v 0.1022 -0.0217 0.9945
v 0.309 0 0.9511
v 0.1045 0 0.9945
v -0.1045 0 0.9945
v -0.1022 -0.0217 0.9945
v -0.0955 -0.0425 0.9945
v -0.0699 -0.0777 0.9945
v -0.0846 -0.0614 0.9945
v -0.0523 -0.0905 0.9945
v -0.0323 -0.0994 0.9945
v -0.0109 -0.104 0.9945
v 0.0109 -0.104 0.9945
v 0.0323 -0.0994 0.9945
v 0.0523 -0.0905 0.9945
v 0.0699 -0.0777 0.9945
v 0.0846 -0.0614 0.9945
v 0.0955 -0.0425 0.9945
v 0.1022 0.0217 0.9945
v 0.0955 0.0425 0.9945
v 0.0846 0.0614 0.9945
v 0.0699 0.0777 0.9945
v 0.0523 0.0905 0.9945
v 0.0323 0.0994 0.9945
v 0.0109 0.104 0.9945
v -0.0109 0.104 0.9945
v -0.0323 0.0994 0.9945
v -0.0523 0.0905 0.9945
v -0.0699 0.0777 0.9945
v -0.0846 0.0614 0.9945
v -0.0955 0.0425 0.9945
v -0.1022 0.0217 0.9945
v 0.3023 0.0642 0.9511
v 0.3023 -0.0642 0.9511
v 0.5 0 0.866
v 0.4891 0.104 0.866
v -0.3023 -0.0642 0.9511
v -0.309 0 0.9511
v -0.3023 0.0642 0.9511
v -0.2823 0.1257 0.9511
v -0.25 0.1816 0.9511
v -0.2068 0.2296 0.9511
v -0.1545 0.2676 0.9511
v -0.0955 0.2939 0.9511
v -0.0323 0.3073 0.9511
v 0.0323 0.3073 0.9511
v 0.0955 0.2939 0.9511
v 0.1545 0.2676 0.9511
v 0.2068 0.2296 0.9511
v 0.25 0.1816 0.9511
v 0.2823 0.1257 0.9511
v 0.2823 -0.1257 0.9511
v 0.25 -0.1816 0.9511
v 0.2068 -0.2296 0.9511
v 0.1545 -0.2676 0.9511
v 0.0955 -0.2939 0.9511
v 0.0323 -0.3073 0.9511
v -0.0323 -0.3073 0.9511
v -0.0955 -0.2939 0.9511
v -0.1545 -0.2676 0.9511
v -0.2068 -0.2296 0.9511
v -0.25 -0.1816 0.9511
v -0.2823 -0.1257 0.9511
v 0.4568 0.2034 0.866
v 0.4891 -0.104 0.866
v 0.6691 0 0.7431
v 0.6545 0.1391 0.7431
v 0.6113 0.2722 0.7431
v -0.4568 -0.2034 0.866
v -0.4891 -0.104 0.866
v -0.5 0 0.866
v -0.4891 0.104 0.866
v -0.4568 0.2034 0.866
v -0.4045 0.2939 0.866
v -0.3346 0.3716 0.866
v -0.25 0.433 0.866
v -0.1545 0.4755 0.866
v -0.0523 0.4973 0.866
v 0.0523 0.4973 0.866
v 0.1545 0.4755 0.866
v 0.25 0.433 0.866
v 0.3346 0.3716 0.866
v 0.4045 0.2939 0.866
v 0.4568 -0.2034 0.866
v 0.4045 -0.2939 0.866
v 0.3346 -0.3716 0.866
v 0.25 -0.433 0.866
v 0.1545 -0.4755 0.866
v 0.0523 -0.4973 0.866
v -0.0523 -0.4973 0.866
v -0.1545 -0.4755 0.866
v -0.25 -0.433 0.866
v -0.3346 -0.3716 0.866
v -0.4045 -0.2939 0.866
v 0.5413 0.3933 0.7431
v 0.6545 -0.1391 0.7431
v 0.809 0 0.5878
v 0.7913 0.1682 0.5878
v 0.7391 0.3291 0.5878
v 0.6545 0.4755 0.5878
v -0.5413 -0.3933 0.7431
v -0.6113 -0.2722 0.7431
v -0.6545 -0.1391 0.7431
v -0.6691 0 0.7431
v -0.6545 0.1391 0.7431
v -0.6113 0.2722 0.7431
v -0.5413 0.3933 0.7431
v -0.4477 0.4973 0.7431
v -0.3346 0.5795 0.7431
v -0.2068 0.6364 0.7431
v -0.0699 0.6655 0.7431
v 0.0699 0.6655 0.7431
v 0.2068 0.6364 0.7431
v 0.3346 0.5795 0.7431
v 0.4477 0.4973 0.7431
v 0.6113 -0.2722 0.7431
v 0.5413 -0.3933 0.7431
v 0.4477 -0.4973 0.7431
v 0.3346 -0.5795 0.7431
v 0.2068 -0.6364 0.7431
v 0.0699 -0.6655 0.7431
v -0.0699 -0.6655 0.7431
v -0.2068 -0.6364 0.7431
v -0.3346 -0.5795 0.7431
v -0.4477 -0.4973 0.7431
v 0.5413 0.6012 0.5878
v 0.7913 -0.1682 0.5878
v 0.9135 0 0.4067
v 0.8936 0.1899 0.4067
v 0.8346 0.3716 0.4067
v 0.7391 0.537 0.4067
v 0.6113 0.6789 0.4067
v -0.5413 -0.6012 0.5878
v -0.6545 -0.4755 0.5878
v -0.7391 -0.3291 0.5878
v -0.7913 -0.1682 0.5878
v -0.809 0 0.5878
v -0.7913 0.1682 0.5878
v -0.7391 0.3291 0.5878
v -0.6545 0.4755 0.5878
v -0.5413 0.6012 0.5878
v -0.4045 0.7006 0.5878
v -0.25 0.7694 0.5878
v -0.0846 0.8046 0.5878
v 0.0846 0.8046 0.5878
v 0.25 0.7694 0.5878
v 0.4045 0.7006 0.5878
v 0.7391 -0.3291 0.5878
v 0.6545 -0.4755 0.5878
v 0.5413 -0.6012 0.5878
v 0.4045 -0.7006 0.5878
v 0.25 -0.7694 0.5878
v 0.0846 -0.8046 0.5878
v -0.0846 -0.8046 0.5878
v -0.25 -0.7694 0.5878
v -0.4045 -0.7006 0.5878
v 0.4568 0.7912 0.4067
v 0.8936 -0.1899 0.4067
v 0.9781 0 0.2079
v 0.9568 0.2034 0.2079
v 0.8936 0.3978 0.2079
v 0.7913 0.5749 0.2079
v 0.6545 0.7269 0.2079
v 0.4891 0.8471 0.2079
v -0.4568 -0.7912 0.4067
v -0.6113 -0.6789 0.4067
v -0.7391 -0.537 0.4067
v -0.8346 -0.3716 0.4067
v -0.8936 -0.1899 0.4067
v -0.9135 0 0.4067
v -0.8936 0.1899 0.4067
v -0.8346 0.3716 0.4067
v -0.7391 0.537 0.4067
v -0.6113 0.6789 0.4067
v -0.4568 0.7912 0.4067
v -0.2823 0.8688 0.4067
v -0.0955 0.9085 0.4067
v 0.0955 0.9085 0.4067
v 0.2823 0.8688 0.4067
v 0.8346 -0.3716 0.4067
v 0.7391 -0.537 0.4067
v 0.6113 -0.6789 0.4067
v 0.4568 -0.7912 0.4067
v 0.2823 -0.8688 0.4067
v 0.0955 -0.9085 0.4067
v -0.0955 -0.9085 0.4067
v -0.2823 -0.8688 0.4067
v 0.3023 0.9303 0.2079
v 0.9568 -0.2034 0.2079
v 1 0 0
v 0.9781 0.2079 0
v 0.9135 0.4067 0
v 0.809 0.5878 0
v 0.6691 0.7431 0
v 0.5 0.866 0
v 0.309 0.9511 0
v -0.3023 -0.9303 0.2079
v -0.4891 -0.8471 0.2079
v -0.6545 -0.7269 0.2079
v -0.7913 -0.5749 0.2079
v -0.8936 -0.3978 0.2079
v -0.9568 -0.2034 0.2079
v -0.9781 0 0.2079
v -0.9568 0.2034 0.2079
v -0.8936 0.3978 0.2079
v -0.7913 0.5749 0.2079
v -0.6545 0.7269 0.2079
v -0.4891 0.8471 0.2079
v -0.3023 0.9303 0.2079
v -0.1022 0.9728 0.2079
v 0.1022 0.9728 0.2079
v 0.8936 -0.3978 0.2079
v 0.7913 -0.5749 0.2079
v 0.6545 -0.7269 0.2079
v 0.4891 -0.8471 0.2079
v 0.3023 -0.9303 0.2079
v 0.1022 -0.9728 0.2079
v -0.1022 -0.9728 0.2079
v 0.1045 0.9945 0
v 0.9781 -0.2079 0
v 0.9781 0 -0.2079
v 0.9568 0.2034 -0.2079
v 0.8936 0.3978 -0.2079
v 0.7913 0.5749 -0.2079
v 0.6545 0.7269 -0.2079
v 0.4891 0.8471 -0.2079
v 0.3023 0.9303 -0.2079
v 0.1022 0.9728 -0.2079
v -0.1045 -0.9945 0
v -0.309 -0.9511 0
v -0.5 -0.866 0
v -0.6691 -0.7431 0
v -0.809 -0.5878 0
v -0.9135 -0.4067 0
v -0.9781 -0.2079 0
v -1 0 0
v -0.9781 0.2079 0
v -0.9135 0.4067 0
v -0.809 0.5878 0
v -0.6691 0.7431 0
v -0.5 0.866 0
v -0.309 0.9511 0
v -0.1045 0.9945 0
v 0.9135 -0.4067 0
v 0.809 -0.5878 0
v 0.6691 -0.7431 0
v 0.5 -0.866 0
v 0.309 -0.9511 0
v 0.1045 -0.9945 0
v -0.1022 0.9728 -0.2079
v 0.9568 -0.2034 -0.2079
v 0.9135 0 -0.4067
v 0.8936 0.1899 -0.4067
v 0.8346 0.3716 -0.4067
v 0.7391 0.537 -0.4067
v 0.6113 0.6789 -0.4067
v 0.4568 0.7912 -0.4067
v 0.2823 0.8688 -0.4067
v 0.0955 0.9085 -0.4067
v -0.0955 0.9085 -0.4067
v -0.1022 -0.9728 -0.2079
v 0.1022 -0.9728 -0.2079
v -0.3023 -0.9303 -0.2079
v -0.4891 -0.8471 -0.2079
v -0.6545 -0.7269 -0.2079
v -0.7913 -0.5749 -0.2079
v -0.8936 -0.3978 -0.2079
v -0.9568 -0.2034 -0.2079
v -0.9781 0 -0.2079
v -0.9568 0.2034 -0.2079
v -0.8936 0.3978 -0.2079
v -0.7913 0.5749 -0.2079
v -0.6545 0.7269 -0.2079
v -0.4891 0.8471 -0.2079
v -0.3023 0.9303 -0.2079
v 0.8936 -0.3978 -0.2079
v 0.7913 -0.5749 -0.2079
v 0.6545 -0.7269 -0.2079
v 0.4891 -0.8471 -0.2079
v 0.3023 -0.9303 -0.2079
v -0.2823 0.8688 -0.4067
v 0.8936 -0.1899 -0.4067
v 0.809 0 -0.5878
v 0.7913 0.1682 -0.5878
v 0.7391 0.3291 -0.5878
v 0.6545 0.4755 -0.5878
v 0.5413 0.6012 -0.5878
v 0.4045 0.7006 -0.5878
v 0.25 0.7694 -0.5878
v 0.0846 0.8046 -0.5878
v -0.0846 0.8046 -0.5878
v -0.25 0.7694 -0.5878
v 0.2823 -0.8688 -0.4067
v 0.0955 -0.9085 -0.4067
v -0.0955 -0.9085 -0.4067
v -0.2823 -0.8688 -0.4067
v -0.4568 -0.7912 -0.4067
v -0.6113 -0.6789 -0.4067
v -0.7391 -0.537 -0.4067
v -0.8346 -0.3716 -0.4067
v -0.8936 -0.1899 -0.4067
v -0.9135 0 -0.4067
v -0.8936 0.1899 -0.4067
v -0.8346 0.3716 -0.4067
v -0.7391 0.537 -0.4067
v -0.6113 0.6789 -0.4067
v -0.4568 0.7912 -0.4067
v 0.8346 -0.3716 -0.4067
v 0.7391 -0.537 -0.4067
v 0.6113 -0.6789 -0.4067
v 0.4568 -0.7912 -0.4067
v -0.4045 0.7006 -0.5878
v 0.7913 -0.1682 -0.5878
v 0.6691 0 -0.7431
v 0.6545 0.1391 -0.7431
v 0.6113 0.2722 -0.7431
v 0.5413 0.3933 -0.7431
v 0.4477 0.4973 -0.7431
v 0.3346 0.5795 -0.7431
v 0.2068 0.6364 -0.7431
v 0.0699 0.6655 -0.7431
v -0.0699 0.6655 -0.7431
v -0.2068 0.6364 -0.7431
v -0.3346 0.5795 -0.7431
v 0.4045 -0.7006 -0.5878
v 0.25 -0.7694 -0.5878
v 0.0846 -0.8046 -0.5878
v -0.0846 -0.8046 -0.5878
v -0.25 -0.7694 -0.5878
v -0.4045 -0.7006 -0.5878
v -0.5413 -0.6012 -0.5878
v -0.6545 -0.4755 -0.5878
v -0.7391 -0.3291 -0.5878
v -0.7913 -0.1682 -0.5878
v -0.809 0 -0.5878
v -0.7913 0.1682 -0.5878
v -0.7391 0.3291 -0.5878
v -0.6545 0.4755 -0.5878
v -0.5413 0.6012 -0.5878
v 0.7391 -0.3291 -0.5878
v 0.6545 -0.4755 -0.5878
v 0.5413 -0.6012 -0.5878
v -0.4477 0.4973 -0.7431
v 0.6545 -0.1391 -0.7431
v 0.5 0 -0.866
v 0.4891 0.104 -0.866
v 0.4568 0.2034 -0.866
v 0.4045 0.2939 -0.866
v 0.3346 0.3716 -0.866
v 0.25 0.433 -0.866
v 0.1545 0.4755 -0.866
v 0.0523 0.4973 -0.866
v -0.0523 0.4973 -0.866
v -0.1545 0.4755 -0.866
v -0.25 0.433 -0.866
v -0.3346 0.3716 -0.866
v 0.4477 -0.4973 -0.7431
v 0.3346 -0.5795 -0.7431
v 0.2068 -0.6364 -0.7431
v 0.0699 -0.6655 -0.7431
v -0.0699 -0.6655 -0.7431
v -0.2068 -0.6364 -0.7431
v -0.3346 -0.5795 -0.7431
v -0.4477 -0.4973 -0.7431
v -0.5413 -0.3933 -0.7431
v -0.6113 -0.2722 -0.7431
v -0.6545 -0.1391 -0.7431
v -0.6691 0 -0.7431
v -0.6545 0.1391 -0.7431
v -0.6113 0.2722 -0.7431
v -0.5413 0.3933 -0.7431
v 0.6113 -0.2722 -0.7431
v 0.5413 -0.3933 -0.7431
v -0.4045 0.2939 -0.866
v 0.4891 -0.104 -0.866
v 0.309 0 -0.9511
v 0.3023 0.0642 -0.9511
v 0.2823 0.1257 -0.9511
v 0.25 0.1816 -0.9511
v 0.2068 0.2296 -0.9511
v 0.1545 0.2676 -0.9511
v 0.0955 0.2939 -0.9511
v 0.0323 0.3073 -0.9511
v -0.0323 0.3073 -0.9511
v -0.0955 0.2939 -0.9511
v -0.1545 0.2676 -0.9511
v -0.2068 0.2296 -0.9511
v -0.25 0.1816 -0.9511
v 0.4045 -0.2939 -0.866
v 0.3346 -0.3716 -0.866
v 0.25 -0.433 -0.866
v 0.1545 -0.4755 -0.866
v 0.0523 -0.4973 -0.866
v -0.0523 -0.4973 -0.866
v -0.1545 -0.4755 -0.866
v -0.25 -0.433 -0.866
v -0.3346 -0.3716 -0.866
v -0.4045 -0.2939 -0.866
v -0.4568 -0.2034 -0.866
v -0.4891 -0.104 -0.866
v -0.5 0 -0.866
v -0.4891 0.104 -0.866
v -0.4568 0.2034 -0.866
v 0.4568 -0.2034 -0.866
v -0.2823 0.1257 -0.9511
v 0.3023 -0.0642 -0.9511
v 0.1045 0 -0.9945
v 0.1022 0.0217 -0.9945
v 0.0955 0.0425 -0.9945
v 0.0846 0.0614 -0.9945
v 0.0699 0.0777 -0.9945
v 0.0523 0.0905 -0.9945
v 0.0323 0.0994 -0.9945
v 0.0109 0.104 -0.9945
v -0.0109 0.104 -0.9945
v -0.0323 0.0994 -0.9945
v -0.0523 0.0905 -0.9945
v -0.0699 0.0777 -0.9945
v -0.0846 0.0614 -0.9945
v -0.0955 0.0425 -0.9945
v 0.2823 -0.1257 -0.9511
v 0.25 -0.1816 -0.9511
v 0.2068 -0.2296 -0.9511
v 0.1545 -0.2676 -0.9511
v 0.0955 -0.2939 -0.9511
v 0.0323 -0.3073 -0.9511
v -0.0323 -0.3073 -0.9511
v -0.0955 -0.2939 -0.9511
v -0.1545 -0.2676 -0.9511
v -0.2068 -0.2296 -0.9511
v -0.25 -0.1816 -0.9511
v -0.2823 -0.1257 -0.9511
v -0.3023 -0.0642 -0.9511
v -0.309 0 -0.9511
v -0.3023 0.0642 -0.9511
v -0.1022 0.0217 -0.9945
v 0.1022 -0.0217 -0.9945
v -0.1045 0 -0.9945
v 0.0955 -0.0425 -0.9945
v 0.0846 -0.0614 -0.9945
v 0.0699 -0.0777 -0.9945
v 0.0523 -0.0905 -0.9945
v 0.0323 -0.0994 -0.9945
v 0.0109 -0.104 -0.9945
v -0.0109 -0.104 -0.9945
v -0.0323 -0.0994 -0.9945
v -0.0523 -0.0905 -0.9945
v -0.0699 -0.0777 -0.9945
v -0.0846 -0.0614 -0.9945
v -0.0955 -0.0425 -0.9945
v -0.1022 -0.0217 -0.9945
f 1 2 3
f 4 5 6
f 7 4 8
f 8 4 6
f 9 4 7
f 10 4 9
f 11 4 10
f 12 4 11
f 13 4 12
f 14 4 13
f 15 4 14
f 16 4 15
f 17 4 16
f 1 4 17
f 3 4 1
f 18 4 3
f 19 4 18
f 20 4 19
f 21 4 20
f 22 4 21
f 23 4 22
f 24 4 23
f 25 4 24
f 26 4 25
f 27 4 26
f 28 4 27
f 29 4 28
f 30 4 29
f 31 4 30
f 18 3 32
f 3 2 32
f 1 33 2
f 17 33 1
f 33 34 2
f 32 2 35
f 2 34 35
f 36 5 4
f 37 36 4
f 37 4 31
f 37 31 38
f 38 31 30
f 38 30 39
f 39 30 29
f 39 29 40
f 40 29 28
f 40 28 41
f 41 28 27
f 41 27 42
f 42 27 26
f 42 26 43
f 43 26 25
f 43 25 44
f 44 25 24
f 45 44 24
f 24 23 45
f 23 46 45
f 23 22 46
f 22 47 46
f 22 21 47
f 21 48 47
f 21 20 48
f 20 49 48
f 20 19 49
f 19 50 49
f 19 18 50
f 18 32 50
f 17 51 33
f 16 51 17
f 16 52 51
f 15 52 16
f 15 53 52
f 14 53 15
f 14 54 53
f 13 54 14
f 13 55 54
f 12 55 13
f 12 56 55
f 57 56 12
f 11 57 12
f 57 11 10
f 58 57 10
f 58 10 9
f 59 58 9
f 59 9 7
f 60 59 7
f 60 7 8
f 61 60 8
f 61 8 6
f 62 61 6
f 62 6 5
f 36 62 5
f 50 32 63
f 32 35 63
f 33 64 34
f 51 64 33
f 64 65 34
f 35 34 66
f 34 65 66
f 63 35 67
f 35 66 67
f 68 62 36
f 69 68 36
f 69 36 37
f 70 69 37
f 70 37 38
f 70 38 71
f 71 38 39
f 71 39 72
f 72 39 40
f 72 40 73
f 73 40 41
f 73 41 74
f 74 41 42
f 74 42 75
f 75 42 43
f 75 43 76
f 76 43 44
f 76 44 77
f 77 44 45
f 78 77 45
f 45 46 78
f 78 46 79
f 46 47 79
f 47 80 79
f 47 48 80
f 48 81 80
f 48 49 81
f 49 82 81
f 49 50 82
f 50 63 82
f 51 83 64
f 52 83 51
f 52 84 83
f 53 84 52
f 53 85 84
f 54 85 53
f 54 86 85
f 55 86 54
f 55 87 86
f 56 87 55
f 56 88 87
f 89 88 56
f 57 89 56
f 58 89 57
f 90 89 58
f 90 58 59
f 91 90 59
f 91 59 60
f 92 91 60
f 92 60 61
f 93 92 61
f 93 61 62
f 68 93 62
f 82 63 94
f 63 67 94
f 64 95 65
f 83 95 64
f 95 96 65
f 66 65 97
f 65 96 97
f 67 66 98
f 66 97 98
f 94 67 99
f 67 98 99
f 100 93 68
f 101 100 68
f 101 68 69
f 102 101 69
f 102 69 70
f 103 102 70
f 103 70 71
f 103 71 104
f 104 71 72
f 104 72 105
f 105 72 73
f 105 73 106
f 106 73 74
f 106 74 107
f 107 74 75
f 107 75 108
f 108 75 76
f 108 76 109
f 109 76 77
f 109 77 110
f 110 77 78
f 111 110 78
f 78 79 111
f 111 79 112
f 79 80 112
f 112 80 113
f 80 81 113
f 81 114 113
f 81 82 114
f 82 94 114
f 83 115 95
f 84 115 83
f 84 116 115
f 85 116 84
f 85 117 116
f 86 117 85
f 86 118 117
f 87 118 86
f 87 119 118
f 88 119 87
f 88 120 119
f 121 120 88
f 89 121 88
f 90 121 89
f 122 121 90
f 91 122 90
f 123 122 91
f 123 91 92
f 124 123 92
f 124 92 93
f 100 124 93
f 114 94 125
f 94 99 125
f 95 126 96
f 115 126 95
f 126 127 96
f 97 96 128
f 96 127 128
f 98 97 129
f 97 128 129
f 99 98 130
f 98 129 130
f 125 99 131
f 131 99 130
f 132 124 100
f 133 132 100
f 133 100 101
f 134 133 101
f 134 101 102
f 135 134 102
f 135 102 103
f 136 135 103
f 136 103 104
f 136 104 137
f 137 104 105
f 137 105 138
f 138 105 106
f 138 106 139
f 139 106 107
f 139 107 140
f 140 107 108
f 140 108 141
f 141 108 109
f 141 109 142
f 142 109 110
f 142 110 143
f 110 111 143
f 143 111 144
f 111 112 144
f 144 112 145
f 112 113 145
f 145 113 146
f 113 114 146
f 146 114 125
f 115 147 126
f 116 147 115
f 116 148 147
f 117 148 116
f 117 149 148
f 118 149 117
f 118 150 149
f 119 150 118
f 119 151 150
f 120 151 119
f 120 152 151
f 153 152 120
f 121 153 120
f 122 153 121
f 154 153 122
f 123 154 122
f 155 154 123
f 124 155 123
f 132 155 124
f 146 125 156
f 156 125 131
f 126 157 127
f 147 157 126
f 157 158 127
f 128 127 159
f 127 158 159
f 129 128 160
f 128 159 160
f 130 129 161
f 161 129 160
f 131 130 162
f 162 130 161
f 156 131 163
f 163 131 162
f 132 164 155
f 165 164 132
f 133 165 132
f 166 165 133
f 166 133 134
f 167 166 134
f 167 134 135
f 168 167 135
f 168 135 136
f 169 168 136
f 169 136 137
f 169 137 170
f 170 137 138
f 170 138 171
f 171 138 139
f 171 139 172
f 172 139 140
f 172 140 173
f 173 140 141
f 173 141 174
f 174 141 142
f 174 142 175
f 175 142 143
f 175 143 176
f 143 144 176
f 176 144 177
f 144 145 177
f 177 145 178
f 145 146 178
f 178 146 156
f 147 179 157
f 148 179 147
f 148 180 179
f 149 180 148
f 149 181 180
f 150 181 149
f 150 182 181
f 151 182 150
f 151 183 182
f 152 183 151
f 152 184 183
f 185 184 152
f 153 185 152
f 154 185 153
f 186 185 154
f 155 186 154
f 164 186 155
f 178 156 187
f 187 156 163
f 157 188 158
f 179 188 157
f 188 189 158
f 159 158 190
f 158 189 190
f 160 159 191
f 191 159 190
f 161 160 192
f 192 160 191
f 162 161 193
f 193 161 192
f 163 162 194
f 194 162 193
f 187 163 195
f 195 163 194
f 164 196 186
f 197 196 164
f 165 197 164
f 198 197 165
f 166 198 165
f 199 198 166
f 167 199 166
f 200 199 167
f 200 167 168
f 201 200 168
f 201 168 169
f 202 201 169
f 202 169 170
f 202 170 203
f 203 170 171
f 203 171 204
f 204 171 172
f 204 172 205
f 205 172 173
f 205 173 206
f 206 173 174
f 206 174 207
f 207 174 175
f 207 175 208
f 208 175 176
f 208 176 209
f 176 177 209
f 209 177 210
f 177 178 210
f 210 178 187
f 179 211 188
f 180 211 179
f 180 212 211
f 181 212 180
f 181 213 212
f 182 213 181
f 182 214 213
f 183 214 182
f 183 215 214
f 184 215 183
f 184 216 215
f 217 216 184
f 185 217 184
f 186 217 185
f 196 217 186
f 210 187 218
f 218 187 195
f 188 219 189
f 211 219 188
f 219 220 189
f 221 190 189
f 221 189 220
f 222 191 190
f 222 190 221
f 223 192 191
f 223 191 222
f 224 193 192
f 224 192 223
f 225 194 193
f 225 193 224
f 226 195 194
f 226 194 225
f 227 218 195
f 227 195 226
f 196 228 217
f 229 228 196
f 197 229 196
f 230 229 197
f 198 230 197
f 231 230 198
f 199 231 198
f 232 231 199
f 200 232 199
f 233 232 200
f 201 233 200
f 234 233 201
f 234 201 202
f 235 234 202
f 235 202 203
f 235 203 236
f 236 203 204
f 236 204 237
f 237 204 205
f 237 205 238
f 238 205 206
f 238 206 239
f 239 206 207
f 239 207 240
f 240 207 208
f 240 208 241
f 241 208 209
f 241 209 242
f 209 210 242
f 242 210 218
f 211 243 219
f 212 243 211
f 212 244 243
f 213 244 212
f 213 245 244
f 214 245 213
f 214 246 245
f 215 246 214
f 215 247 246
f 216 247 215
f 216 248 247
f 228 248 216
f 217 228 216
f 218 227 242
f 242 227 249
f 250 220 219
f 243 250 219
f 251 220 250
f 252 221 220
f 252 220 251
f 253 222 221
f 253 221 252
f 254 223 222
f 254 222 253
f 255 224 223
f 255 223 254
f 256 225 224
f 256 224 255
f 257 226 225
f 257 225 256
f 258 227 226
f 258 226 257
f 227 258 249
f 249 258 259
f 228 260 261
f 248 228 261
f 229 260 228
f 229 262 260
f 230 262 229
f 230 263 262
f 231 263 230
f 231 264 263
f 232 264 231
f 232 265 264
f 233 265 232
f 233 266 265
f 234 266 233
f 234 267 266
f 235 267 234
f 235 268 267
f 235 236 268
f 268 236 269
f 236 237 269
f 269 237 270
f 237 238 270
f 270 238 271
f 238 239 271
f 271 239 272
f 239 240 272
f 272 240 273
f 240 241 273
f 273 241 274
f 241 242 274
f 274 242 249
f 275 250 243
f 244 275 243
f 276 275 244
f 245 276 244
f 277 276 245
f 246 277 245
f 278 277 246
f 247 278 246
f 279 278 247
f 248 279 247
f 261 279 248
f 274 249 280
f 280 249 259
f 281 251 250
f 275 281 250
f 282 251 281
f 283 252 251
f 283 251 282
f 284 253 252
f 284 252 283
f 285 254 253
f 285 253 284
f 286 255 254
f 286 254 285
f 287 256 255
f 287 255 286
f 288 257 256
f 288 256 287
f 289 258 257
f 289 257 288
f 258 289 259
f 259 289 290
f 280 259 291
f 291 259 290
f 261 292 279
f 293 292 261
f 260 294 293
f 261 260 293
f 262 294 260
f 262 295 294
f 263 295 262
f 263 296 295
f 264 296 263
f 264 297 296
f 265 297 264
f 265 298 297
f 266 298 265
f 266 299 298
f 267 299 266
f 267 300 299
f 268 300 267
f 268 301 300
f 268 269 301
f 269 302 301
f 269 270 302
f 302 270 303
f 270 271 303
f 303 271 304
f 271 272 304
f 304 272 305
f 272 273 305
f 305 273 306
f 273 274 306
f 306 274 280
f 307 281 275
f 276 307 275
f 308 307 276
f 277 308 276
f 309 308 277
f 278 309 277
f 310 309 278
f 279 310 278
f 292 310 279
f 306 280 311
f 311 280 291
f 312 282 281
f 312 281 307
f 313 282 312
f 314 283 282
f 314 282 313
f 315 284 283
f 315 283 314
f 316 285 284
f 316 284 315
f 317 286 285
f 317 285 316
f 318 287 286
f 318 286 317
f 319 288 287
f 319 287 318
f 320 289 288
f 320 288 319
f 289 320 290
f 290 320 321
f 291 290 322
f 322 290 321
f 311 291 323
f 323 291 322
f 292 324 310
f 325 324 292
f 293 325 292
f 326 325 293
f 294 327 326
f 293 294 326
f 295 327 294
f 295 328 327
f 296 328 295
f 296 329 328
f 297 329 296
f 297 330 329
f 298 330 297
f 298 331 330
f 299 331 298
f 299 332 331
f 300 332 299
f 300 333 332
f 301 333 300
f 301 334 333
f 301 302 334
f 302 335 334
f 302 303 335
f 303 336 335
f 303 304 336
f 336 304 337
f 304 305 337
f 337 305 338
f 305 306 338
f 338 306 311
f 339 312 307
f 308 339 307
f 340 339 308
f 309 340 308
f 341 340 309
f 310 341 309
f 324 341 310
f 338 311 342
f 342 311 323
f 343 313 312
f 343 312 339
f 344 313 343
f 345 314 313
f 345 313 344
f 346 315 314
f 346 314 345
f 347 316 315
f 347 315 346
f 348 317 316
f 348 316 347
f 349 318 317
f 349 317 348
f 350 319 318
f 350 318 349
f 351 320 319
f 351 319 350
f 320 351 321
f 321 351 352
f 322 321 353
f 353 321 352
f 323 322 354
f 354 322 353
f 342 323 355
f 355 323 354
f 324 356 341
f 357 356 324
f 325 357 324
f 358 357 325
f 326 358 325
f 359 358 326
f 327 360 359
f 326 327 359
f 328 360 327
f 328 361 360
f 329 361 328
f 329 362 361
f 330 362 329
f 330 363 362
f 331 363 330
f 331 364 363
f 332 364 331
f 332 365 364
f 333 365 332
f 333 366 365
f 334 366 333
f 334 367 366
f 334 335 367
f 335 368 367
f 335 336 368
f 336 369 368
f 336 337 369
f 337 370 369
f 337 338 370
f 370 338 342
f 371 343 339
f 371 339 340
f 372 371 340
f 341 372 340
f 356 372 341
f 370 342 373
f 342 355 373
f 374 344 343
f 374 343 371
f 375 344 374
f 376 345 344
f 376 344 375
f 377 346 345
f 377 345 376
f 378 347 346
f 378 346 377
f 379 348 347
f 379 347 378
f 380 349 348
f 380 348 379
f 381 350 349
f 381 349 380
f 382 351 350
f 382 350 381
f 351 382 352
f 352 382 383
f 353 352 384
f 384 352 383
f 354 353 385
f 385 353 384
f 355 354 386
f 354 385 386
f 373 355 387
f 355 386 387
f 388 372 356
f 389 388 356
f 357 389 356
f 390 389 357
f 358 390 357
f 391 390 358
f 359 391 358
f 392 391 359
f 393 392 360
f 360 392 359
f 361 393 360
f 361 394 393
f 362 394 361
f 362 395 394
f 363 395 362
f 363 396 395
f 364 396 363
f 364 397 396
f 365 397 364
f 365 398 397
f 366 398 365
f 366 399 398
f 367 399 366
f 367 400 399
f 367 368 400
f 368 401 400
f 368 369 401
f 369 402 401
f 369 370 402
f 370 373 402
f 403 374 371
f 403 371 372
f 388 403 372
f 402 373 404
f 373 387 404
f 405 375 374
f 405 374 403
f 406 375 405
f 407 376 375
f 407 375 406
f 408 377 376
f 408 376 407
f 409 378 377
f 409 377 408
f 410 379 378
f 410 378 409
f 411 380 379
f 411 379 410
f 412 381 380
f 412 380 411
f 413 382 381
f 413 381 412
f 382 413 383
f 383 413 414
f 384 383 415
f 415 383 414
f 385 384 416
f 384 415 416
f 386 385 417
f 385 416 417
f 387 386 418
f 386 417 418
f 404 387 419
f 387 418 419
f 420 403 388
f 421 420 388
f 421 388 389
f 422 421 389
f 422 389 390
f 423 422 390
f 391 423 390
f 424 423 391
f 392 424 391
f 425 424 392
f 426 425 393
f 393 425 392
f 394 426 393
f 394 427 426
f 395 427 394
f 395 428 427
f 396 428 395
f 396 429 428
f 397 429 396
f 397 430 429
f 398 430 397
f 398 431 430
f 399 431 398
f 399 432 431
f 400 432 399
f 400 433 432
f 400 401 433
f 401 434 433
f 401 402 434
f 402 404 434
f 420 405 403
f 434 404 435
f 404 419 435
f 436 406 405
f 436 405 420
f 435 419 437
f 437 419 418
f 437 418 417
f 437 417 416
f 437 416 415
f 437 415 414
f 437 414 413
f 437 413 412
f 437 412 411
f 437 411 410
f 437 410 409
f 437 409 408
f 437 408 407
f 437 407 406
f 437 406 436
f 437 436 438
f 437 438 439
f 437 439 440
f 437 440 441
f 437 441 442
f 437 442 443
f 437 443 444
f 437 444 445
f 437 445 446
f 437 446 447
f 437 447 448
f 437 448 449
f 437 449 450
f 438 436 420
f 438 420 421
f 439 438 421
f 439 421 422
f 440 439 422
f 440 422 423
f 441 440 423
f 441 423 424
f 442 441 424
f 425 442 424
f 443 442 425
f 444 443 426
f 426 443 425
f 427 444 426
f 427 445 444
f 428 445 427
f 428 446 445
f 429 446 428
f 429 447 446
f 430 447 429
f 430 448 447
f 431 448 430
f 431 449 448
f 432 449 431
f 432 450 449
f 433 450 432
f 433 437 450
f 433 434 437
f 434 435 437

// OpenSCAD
// Source for unit_sphere.stl
// Compile with: openscad -o unit_sphere.stl unit_sphere.scad

// Note that the 0.01 here means that we allow at most a 1x10^-2 error in
// position.
sphere($fs=0.01, r=1);
